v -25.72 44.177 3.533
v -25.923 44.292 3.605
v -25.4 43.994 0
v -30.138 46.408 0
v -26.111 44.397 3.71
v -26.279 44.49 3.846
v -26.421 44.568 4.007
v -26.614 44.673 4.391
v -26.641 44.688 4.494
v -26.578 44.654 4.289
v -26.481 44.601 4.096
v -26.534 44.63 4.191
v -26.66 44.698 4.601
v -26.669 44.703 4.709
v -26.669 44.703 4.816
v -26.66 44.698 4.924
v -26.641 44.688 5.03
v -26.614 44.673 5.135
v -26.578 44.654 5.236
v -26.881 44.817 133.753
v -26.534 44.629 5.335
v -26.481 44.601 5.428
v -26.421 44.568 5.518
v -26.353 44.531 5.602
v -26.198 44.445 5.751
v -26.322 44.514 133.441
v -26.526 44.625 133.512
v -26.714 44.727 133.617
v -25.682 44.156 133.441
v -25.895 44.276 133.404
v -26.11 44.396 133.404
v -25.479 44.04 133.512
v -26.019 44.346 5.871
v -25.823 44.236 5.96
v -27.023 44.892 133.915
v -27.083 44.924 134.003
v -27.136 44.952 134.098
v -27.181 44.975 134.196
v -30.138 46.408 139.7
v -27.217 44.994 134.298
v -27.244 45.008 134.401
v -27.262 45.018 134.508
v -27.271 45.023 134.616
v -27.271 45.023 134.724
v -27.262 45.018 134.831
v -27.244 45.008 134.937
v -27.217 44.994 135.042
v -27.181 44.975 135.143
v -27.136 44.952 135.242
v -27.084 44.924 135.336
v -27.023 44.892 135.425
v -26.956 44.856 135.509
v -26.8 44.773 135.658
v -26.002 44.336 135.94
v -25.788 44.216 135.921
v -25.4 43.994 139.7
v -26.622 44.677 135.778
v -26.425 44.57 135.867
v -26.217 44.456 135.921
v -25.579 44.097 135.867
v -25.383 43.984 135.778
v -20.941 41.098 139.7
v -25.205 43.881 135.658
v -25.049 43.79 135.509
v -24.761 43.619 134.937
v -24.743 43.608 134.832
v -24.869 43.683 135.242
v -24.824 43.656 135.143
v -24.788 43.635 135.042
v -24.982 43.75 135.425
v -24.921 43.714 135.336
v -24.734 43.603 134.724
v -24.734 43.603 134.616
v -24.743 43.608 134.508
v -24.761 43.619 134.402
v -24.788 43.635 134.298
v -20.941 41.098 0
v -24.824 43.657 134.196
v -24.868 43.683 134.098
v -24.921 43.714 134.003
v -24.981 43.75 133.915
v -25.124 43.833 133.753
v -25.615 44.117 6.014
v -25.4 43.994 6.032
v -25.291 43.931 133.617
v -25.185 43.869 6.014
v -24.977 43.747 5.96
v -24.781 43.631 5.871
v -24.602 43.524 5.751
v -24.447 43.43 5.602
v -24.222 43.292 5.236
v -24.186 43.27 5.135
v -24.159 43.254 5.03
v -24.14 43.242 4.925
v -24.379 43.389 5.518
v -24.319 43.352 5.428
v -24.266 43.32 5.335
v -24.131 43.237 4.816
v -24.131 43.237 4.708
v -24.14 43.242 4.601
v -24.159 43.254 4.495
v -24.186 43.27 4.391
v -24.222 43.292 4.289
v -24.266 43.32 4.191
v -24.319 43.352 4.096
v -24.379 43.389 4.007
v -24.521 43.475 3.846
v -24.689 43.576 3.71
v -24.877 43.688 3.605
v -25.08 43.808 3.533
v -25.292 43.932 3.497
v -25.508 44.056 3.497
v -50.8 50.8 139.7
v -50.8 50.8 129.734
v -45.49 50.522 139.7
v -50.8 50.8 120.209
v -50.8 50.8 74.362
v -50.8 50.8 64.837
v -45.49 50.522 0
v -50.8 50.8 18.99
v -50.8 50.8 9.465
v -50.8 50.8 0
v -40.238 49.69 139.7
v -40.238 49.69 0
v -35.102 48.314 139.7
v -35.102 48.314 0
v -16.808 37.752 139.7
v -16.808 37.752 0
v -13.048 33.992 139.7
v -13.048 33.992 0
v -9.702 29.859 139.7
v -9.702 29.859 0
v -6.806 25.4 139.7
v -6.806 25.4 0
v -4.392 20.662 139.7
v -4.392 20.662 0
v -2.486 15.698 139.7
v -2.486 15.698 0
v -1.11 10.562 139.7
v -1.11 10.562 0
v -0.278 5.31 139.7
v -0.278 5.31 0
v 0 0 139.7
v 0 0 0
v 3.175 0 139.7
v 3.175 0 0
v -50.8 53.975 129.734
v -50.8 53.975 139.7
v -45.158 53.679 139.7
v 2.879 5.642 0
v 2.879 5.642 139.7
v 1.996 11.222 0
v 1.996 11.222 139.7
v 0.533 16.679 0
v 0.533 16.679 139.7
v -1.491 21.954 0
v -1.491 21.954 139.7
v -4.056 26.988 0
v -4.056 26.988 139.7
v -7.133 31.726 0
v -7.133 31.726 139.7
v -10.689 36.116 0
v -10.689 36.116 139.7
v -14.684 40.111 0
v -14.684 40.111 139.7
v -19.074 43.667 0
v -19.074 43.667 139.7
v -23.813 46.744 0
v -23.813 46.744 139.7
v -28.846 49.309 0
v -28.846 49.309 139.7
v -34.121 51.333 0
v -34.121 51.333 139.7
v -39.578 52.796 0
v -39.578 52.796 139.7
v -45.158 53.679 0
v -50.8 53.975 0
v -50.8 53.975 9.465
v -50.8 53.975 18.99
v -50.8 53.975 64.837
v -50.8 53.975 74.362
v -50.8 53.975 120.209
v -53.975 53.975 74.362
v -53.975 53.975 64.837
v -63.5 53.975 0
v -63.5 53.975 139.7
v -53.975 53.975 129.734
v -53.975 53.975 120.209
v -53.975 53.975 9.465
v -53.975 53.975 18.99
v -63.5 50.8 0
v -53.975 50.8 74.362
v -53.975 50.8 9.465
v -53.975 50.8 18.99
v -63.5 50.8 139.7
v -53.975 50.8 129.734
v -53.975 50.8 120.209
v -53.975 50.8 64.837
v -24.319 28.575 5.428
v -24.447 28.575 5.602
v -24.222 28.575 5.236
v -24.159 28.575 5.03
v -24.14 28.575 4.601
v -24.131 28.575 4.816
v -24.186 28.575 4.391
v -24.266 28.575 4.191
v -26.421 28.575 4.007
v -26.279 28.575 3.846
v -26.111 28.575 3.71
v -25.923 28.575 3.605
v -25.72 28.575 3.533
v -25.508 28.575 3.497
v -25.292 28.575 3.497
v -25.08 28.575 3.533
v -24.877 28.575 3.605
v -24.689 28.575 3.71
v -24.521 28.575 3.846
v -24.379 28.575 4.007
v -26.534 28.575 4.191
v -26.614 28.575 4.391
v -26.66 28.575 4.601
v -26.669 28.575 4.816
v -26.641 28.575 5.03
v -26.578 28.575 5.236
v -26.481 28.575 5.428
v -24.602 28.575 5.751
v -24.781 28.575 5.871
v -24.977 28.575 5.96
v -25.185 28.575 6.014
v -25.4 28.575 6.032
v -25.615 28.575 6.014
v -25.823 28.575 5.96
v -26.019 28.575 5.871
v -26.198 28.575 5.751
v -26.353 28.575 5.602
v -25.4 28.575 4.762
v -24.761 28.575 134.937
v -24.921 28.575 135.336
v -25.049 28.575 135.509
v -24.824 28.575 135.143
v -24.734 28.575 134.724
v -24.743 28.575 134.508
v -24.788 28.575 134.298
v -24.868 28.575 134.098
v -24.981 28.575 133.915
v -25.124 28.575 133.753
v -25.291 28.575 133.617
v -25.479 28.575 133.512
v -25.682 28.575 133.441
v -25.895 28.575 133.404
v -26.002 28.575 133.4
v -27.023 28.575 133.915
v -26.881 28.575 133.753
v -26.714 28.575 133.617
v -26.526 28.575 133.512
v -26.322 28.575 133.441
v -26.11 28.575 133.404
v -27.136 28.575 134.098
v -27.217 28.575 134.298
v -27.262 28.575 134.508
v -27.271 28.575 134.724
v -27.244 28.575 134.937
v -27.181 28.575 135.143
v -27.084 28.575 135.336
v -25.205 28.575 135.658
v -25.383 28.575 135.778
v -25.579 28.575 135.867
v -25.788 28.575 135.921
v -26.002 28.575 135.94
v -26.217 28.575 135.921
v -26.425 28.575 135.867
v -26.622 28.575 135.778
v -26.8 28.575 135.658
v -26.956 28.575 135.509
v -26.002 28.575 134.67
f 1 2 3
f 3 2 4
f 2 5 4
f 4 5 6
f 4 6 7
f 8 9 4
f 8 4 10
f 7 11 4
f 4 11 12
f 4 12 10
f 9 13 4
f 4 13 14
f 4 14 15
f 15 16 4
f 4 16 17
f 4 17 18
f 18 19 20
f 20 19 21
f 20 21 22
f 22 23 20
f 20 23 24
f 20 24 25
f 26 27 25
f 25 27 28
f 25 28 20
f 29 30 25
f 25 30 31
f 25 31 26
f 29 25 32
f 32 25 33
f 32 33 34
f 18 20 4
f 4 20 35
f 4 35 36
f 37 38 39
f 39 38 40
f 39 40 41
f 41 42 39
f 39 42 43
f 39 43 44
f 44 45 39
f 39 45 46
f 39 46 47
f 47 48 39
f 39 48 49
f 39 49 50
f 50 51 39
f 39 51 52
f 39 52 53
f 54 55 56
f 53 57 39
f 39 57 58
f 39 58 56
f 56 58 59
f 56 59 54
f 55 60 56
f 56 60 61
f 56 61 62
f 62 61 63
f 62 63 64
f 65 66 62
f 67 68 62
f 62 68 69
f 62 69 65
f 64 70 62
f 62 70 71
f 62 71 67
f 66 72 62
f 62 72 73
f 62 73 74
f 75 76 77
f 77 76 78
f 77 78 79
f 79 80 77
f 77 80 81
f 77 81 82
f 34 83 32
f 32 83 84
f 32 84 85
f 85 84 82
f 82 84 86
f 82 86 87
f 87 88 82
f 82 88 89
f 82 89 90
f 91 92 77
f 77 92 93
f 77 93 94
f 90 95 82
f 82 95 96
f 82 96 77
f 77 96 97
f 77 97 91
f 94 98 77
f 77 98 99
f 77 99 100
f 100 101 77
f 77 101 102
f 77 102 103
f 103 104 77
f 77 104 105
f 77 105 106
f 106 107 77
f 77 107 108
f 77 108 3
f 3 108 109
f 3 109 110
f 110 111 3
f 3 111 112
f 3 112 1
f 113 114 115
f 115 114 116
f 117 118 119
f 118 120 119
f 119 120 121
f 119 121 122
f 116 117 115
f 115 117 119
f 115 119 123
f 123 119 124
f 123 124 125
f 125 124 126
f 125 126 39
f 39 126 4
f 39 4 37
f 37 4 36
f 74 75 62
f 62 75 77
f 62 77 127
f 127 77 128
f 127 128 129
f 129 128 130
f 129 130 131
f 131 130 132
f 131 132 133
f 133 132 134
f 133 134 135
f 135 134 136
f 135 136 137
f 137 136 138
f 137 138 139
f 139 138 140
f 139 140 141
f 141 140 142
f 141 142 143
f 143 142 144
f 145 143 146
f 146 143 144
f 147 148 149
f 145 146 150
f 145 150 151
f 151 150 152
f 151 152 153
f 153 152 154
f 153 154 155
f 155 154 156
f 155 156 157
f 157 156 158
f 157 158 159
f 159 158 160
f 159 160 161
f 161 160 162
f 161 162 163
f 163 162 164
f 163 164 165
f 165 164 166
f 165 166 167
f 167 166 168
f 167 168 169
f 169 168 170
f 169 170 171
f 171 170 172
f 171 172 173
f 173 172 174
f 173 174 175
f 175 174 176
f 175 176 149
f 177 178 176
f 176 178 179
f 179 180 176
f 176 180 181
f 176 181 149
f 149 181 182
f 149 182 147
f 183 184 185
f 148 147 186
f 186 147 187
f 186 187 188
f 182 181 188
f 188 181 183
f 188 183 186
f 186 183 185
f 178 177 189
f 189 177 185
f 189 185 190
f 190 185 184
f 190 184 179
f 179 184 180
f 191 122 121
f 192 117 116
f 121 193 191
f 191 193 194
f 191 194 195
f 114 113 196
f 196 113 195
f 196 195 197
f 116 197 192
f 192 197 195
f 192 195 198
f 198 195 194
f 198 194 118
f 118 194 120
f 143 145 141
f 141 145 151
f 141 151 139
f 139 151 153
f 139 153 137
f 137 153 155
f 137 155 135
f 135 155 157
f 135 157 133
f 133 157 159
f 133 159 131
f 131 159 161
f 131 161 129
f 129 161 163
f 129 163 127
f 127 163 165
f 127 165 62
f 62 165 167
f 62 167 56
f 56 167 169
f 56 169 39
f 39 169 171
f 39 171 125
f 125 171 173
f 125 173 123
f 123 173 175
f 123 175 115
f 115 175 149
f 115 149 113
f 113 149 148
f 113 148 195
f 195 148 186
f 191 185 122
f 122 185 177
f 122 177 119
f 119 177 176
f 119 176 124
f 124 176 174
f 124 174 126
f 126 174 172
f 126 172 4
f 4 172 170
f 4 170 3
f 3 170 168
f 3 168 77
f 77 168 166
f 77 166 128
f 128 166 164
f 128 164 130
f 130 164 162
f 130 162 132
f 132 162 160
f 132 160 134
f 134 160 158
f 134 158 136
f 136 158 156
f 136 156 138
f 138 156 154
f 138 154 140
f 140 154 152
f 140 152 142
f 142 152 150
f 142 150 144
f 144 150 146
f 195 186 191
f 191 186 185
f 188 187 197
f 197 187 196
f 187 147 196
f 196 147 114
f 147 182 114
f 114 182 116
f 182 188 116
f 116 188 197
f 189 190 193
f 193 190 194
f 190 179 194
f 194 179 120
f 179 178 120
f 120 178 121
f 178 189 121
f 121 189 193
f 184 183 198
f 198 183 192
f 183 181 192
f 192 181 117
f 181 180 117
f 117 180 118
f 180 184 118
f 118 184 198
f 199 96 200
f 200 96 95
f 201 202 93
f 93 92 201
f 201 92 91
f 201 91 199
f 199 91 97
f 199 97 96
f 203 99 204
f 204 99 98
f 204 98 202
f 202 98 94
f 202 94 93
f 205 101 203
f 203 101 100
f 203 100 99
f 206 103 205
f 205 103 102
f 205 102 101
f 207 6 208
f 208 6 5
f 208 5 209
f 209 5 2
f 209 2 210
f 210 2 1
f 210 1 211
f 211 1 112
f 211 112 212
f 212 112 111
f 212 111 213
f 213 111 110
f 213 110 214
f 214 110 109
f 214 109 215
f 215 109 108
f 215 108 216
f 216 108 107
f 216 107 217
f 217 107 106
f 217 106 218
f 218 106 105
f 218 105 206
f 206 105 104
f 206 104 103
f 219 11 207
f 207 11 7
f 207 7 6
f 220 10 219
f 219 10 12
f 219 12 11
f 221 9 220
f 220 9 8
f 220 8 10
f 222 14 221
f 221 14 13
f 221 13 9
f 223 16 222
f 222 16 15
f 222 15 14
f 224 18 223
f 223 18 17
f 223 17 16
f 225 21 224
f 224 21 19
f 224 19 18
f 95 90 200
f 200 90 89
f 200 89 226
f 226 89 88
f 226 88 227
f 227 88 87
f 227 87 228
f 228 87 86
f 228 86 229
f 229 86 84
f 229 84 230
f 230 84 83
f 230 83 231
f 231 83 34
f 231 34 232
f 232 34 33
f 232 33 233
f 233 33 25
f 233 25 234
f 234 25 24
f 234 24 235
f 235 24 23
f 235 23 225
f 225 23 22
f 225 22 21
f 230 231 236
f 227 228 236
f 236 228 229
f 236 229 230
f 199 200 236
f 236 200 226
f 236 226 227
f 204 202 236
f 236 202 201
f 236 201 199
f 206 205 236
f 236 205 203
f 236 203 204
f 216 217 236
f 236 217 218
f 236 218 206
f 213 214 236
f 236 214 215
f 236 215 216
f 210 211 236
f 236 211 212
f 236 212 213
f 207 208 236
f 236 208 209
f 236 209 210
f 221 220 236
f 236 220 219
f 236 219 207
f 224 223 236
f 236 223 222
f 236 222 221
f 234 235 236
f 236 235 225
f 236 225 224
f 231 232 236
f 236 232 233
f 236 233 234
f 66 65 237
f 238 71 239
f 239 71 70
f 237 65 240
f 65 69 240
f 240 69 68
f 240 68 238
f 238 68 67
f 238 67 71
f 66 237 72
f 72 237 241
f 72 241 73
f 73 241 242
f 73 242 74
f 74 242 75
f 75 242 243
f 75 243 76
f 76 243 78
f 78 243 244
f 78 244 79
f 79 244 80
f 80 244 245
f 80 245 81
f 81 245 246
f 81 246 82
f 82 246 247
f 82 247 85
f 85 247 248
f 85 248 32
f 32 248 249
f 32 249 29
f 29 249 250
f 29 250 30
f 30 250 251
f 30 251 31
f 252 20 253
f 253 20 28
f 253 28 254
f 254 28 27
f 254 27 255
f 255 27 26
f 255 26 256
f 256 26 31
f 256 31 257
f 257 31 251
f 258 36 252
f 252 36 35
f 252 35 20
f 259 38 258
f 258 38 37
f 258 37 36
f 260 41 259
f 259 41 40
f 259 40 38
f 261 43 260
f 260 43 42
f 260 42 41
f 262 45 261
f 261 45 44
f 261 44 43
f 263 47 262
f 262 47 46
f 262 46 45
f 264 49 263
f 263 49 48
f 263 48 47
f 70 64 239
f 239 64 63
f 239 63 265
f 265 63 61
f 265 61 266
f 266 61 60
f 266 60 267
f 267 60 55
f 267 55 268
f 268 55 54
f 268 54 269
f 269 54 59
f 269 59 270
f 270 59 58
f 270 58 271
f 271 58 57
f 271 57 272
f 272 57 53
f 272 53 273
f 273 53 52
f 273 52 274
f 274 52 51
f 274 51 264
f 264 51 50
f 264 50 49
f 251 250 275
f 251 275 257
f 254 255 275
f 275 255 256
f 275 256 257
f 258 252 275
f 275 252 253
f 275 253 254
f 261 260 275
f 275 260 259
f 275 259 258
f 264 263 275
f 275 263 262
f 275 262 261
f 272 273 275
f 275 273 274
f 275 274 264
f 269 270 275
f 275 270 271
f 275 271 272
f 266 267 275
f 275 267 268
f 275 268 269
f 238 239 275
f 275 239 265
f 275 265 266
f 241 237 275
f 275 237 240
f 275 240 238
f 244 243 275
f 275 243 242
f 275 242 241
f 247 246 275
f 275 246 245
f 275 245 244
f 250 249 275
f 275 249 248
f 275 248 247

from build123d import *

# Parameters (mm, degrees)
BOSS_EXTRUDE1_DEPTH = 139.7
SKETCH3_W           = 139.7
SKETCH3_H           = 3.175
BOSS_EXTRUDE2_DEPTH = 3.175
SKETCH4_W           = 3.175
SKETCH4_H           = 9.525
CUT_EXTRUDE1_DEPTH  = 162.644610179
LPATTERN1_COUNT     = 3
LPATTERN1_PITCH     = 55.372
SKETCH5_R           = 1.27
BOSS_EXTRUDE3_DEPTH = 25.4
CUT_EXTRUDE2_DEPTH  = 163.670343529


with BuildPart() as part:
    # Sketch2 → Boss-Extrude1 (new body)
    with BuildSketch(Plane.XY):
        with BuildLine():
            Line((-50.8, 50.8), (-60.325, 50.8))
            Line((-60.325, 50.8), (-60.325, 53.975))
            Line((-60.325, 53.975), (-50.8, 53.975))
            ThreePointArc((-50.8, 53.975), (-12.633911485, 38.166088515), (3.175, 0))
            Line((3.175, 0), (0, 0))
            ThreePointArc((0, 0), (-14.878975516, 35.921024484), (-50.8, 50.8))
        make_face()
    extrude(amount=BOSS_EXTRUDE1_DEPTH)

    # Sketch3 → Boss-Extrude2 (add)
    with BuildSketch(Plane.ZY.offset(60.325)):
        with Locations((69.85, 52.3875)):
            Rectangle(SKETCH3_W, SKETCH3_H)
    extrude(amount=BOSS_EXTRUDE2_DEPTH)

    # Sketch4 → Cut-Extrude1 (cut, through all)
    with BuildSketch(Plane.XZ.offset(-50.8)):
        with Locations((-52.3875, 124.971707481)):
            Rectangle(SKETCH4_W, SKETCH4_H)
    cut_extrude1 = extrude(amount=-CUT_EXTRUDE1_DEPTH, mode=Mode.SUBTRACT)

    # LPattern1: Cut-Extrude1 ×3
    with Locations(*[(0, 0, -i * LPATTERN1_PITCH) for i in range(1, LPATTERN1_COUNT)]):
        add(cut_extrude1, mode=Mode.SUBTRACT)

    # Sketch5 → Boss-Extrude3 (add)
    with BuildSketch(Plane(origin=(0, 53.975, 0), x_dir=(1, 0, 0), z_dir=(0, 1, 0))):
        with Locations(Location((-25.4, -4.7625, 0), (0, 0, 270))):
            Circle(SKETCH5_R)
        with Locations(Location((-26.00240478, -134.669690924, 0), (0, 0, 270))):
            Circle(SKETCH5_R)
    extrude(amount=-BOSS_EXTRUDE3_DEPTH)

    # Sketch6 → Cut-Extrude2 (cut, through all)
    with BuildSketch(Plane.XY.offset(139.7)):
        with BuildLine():
            ThreePointArc((-50.8, 53.975), (-12.633911485, 38.166088515), (3.175, 0))
            ThreePointArc((3.175, 0), (10.303147702, 61.103147702), (-50.8, 53.975))
        make_face()
    extrude(amount=-CUT_EXTRUDE2_DEPTH, mode=Mode.SUBTRACT)


solid = part.part
